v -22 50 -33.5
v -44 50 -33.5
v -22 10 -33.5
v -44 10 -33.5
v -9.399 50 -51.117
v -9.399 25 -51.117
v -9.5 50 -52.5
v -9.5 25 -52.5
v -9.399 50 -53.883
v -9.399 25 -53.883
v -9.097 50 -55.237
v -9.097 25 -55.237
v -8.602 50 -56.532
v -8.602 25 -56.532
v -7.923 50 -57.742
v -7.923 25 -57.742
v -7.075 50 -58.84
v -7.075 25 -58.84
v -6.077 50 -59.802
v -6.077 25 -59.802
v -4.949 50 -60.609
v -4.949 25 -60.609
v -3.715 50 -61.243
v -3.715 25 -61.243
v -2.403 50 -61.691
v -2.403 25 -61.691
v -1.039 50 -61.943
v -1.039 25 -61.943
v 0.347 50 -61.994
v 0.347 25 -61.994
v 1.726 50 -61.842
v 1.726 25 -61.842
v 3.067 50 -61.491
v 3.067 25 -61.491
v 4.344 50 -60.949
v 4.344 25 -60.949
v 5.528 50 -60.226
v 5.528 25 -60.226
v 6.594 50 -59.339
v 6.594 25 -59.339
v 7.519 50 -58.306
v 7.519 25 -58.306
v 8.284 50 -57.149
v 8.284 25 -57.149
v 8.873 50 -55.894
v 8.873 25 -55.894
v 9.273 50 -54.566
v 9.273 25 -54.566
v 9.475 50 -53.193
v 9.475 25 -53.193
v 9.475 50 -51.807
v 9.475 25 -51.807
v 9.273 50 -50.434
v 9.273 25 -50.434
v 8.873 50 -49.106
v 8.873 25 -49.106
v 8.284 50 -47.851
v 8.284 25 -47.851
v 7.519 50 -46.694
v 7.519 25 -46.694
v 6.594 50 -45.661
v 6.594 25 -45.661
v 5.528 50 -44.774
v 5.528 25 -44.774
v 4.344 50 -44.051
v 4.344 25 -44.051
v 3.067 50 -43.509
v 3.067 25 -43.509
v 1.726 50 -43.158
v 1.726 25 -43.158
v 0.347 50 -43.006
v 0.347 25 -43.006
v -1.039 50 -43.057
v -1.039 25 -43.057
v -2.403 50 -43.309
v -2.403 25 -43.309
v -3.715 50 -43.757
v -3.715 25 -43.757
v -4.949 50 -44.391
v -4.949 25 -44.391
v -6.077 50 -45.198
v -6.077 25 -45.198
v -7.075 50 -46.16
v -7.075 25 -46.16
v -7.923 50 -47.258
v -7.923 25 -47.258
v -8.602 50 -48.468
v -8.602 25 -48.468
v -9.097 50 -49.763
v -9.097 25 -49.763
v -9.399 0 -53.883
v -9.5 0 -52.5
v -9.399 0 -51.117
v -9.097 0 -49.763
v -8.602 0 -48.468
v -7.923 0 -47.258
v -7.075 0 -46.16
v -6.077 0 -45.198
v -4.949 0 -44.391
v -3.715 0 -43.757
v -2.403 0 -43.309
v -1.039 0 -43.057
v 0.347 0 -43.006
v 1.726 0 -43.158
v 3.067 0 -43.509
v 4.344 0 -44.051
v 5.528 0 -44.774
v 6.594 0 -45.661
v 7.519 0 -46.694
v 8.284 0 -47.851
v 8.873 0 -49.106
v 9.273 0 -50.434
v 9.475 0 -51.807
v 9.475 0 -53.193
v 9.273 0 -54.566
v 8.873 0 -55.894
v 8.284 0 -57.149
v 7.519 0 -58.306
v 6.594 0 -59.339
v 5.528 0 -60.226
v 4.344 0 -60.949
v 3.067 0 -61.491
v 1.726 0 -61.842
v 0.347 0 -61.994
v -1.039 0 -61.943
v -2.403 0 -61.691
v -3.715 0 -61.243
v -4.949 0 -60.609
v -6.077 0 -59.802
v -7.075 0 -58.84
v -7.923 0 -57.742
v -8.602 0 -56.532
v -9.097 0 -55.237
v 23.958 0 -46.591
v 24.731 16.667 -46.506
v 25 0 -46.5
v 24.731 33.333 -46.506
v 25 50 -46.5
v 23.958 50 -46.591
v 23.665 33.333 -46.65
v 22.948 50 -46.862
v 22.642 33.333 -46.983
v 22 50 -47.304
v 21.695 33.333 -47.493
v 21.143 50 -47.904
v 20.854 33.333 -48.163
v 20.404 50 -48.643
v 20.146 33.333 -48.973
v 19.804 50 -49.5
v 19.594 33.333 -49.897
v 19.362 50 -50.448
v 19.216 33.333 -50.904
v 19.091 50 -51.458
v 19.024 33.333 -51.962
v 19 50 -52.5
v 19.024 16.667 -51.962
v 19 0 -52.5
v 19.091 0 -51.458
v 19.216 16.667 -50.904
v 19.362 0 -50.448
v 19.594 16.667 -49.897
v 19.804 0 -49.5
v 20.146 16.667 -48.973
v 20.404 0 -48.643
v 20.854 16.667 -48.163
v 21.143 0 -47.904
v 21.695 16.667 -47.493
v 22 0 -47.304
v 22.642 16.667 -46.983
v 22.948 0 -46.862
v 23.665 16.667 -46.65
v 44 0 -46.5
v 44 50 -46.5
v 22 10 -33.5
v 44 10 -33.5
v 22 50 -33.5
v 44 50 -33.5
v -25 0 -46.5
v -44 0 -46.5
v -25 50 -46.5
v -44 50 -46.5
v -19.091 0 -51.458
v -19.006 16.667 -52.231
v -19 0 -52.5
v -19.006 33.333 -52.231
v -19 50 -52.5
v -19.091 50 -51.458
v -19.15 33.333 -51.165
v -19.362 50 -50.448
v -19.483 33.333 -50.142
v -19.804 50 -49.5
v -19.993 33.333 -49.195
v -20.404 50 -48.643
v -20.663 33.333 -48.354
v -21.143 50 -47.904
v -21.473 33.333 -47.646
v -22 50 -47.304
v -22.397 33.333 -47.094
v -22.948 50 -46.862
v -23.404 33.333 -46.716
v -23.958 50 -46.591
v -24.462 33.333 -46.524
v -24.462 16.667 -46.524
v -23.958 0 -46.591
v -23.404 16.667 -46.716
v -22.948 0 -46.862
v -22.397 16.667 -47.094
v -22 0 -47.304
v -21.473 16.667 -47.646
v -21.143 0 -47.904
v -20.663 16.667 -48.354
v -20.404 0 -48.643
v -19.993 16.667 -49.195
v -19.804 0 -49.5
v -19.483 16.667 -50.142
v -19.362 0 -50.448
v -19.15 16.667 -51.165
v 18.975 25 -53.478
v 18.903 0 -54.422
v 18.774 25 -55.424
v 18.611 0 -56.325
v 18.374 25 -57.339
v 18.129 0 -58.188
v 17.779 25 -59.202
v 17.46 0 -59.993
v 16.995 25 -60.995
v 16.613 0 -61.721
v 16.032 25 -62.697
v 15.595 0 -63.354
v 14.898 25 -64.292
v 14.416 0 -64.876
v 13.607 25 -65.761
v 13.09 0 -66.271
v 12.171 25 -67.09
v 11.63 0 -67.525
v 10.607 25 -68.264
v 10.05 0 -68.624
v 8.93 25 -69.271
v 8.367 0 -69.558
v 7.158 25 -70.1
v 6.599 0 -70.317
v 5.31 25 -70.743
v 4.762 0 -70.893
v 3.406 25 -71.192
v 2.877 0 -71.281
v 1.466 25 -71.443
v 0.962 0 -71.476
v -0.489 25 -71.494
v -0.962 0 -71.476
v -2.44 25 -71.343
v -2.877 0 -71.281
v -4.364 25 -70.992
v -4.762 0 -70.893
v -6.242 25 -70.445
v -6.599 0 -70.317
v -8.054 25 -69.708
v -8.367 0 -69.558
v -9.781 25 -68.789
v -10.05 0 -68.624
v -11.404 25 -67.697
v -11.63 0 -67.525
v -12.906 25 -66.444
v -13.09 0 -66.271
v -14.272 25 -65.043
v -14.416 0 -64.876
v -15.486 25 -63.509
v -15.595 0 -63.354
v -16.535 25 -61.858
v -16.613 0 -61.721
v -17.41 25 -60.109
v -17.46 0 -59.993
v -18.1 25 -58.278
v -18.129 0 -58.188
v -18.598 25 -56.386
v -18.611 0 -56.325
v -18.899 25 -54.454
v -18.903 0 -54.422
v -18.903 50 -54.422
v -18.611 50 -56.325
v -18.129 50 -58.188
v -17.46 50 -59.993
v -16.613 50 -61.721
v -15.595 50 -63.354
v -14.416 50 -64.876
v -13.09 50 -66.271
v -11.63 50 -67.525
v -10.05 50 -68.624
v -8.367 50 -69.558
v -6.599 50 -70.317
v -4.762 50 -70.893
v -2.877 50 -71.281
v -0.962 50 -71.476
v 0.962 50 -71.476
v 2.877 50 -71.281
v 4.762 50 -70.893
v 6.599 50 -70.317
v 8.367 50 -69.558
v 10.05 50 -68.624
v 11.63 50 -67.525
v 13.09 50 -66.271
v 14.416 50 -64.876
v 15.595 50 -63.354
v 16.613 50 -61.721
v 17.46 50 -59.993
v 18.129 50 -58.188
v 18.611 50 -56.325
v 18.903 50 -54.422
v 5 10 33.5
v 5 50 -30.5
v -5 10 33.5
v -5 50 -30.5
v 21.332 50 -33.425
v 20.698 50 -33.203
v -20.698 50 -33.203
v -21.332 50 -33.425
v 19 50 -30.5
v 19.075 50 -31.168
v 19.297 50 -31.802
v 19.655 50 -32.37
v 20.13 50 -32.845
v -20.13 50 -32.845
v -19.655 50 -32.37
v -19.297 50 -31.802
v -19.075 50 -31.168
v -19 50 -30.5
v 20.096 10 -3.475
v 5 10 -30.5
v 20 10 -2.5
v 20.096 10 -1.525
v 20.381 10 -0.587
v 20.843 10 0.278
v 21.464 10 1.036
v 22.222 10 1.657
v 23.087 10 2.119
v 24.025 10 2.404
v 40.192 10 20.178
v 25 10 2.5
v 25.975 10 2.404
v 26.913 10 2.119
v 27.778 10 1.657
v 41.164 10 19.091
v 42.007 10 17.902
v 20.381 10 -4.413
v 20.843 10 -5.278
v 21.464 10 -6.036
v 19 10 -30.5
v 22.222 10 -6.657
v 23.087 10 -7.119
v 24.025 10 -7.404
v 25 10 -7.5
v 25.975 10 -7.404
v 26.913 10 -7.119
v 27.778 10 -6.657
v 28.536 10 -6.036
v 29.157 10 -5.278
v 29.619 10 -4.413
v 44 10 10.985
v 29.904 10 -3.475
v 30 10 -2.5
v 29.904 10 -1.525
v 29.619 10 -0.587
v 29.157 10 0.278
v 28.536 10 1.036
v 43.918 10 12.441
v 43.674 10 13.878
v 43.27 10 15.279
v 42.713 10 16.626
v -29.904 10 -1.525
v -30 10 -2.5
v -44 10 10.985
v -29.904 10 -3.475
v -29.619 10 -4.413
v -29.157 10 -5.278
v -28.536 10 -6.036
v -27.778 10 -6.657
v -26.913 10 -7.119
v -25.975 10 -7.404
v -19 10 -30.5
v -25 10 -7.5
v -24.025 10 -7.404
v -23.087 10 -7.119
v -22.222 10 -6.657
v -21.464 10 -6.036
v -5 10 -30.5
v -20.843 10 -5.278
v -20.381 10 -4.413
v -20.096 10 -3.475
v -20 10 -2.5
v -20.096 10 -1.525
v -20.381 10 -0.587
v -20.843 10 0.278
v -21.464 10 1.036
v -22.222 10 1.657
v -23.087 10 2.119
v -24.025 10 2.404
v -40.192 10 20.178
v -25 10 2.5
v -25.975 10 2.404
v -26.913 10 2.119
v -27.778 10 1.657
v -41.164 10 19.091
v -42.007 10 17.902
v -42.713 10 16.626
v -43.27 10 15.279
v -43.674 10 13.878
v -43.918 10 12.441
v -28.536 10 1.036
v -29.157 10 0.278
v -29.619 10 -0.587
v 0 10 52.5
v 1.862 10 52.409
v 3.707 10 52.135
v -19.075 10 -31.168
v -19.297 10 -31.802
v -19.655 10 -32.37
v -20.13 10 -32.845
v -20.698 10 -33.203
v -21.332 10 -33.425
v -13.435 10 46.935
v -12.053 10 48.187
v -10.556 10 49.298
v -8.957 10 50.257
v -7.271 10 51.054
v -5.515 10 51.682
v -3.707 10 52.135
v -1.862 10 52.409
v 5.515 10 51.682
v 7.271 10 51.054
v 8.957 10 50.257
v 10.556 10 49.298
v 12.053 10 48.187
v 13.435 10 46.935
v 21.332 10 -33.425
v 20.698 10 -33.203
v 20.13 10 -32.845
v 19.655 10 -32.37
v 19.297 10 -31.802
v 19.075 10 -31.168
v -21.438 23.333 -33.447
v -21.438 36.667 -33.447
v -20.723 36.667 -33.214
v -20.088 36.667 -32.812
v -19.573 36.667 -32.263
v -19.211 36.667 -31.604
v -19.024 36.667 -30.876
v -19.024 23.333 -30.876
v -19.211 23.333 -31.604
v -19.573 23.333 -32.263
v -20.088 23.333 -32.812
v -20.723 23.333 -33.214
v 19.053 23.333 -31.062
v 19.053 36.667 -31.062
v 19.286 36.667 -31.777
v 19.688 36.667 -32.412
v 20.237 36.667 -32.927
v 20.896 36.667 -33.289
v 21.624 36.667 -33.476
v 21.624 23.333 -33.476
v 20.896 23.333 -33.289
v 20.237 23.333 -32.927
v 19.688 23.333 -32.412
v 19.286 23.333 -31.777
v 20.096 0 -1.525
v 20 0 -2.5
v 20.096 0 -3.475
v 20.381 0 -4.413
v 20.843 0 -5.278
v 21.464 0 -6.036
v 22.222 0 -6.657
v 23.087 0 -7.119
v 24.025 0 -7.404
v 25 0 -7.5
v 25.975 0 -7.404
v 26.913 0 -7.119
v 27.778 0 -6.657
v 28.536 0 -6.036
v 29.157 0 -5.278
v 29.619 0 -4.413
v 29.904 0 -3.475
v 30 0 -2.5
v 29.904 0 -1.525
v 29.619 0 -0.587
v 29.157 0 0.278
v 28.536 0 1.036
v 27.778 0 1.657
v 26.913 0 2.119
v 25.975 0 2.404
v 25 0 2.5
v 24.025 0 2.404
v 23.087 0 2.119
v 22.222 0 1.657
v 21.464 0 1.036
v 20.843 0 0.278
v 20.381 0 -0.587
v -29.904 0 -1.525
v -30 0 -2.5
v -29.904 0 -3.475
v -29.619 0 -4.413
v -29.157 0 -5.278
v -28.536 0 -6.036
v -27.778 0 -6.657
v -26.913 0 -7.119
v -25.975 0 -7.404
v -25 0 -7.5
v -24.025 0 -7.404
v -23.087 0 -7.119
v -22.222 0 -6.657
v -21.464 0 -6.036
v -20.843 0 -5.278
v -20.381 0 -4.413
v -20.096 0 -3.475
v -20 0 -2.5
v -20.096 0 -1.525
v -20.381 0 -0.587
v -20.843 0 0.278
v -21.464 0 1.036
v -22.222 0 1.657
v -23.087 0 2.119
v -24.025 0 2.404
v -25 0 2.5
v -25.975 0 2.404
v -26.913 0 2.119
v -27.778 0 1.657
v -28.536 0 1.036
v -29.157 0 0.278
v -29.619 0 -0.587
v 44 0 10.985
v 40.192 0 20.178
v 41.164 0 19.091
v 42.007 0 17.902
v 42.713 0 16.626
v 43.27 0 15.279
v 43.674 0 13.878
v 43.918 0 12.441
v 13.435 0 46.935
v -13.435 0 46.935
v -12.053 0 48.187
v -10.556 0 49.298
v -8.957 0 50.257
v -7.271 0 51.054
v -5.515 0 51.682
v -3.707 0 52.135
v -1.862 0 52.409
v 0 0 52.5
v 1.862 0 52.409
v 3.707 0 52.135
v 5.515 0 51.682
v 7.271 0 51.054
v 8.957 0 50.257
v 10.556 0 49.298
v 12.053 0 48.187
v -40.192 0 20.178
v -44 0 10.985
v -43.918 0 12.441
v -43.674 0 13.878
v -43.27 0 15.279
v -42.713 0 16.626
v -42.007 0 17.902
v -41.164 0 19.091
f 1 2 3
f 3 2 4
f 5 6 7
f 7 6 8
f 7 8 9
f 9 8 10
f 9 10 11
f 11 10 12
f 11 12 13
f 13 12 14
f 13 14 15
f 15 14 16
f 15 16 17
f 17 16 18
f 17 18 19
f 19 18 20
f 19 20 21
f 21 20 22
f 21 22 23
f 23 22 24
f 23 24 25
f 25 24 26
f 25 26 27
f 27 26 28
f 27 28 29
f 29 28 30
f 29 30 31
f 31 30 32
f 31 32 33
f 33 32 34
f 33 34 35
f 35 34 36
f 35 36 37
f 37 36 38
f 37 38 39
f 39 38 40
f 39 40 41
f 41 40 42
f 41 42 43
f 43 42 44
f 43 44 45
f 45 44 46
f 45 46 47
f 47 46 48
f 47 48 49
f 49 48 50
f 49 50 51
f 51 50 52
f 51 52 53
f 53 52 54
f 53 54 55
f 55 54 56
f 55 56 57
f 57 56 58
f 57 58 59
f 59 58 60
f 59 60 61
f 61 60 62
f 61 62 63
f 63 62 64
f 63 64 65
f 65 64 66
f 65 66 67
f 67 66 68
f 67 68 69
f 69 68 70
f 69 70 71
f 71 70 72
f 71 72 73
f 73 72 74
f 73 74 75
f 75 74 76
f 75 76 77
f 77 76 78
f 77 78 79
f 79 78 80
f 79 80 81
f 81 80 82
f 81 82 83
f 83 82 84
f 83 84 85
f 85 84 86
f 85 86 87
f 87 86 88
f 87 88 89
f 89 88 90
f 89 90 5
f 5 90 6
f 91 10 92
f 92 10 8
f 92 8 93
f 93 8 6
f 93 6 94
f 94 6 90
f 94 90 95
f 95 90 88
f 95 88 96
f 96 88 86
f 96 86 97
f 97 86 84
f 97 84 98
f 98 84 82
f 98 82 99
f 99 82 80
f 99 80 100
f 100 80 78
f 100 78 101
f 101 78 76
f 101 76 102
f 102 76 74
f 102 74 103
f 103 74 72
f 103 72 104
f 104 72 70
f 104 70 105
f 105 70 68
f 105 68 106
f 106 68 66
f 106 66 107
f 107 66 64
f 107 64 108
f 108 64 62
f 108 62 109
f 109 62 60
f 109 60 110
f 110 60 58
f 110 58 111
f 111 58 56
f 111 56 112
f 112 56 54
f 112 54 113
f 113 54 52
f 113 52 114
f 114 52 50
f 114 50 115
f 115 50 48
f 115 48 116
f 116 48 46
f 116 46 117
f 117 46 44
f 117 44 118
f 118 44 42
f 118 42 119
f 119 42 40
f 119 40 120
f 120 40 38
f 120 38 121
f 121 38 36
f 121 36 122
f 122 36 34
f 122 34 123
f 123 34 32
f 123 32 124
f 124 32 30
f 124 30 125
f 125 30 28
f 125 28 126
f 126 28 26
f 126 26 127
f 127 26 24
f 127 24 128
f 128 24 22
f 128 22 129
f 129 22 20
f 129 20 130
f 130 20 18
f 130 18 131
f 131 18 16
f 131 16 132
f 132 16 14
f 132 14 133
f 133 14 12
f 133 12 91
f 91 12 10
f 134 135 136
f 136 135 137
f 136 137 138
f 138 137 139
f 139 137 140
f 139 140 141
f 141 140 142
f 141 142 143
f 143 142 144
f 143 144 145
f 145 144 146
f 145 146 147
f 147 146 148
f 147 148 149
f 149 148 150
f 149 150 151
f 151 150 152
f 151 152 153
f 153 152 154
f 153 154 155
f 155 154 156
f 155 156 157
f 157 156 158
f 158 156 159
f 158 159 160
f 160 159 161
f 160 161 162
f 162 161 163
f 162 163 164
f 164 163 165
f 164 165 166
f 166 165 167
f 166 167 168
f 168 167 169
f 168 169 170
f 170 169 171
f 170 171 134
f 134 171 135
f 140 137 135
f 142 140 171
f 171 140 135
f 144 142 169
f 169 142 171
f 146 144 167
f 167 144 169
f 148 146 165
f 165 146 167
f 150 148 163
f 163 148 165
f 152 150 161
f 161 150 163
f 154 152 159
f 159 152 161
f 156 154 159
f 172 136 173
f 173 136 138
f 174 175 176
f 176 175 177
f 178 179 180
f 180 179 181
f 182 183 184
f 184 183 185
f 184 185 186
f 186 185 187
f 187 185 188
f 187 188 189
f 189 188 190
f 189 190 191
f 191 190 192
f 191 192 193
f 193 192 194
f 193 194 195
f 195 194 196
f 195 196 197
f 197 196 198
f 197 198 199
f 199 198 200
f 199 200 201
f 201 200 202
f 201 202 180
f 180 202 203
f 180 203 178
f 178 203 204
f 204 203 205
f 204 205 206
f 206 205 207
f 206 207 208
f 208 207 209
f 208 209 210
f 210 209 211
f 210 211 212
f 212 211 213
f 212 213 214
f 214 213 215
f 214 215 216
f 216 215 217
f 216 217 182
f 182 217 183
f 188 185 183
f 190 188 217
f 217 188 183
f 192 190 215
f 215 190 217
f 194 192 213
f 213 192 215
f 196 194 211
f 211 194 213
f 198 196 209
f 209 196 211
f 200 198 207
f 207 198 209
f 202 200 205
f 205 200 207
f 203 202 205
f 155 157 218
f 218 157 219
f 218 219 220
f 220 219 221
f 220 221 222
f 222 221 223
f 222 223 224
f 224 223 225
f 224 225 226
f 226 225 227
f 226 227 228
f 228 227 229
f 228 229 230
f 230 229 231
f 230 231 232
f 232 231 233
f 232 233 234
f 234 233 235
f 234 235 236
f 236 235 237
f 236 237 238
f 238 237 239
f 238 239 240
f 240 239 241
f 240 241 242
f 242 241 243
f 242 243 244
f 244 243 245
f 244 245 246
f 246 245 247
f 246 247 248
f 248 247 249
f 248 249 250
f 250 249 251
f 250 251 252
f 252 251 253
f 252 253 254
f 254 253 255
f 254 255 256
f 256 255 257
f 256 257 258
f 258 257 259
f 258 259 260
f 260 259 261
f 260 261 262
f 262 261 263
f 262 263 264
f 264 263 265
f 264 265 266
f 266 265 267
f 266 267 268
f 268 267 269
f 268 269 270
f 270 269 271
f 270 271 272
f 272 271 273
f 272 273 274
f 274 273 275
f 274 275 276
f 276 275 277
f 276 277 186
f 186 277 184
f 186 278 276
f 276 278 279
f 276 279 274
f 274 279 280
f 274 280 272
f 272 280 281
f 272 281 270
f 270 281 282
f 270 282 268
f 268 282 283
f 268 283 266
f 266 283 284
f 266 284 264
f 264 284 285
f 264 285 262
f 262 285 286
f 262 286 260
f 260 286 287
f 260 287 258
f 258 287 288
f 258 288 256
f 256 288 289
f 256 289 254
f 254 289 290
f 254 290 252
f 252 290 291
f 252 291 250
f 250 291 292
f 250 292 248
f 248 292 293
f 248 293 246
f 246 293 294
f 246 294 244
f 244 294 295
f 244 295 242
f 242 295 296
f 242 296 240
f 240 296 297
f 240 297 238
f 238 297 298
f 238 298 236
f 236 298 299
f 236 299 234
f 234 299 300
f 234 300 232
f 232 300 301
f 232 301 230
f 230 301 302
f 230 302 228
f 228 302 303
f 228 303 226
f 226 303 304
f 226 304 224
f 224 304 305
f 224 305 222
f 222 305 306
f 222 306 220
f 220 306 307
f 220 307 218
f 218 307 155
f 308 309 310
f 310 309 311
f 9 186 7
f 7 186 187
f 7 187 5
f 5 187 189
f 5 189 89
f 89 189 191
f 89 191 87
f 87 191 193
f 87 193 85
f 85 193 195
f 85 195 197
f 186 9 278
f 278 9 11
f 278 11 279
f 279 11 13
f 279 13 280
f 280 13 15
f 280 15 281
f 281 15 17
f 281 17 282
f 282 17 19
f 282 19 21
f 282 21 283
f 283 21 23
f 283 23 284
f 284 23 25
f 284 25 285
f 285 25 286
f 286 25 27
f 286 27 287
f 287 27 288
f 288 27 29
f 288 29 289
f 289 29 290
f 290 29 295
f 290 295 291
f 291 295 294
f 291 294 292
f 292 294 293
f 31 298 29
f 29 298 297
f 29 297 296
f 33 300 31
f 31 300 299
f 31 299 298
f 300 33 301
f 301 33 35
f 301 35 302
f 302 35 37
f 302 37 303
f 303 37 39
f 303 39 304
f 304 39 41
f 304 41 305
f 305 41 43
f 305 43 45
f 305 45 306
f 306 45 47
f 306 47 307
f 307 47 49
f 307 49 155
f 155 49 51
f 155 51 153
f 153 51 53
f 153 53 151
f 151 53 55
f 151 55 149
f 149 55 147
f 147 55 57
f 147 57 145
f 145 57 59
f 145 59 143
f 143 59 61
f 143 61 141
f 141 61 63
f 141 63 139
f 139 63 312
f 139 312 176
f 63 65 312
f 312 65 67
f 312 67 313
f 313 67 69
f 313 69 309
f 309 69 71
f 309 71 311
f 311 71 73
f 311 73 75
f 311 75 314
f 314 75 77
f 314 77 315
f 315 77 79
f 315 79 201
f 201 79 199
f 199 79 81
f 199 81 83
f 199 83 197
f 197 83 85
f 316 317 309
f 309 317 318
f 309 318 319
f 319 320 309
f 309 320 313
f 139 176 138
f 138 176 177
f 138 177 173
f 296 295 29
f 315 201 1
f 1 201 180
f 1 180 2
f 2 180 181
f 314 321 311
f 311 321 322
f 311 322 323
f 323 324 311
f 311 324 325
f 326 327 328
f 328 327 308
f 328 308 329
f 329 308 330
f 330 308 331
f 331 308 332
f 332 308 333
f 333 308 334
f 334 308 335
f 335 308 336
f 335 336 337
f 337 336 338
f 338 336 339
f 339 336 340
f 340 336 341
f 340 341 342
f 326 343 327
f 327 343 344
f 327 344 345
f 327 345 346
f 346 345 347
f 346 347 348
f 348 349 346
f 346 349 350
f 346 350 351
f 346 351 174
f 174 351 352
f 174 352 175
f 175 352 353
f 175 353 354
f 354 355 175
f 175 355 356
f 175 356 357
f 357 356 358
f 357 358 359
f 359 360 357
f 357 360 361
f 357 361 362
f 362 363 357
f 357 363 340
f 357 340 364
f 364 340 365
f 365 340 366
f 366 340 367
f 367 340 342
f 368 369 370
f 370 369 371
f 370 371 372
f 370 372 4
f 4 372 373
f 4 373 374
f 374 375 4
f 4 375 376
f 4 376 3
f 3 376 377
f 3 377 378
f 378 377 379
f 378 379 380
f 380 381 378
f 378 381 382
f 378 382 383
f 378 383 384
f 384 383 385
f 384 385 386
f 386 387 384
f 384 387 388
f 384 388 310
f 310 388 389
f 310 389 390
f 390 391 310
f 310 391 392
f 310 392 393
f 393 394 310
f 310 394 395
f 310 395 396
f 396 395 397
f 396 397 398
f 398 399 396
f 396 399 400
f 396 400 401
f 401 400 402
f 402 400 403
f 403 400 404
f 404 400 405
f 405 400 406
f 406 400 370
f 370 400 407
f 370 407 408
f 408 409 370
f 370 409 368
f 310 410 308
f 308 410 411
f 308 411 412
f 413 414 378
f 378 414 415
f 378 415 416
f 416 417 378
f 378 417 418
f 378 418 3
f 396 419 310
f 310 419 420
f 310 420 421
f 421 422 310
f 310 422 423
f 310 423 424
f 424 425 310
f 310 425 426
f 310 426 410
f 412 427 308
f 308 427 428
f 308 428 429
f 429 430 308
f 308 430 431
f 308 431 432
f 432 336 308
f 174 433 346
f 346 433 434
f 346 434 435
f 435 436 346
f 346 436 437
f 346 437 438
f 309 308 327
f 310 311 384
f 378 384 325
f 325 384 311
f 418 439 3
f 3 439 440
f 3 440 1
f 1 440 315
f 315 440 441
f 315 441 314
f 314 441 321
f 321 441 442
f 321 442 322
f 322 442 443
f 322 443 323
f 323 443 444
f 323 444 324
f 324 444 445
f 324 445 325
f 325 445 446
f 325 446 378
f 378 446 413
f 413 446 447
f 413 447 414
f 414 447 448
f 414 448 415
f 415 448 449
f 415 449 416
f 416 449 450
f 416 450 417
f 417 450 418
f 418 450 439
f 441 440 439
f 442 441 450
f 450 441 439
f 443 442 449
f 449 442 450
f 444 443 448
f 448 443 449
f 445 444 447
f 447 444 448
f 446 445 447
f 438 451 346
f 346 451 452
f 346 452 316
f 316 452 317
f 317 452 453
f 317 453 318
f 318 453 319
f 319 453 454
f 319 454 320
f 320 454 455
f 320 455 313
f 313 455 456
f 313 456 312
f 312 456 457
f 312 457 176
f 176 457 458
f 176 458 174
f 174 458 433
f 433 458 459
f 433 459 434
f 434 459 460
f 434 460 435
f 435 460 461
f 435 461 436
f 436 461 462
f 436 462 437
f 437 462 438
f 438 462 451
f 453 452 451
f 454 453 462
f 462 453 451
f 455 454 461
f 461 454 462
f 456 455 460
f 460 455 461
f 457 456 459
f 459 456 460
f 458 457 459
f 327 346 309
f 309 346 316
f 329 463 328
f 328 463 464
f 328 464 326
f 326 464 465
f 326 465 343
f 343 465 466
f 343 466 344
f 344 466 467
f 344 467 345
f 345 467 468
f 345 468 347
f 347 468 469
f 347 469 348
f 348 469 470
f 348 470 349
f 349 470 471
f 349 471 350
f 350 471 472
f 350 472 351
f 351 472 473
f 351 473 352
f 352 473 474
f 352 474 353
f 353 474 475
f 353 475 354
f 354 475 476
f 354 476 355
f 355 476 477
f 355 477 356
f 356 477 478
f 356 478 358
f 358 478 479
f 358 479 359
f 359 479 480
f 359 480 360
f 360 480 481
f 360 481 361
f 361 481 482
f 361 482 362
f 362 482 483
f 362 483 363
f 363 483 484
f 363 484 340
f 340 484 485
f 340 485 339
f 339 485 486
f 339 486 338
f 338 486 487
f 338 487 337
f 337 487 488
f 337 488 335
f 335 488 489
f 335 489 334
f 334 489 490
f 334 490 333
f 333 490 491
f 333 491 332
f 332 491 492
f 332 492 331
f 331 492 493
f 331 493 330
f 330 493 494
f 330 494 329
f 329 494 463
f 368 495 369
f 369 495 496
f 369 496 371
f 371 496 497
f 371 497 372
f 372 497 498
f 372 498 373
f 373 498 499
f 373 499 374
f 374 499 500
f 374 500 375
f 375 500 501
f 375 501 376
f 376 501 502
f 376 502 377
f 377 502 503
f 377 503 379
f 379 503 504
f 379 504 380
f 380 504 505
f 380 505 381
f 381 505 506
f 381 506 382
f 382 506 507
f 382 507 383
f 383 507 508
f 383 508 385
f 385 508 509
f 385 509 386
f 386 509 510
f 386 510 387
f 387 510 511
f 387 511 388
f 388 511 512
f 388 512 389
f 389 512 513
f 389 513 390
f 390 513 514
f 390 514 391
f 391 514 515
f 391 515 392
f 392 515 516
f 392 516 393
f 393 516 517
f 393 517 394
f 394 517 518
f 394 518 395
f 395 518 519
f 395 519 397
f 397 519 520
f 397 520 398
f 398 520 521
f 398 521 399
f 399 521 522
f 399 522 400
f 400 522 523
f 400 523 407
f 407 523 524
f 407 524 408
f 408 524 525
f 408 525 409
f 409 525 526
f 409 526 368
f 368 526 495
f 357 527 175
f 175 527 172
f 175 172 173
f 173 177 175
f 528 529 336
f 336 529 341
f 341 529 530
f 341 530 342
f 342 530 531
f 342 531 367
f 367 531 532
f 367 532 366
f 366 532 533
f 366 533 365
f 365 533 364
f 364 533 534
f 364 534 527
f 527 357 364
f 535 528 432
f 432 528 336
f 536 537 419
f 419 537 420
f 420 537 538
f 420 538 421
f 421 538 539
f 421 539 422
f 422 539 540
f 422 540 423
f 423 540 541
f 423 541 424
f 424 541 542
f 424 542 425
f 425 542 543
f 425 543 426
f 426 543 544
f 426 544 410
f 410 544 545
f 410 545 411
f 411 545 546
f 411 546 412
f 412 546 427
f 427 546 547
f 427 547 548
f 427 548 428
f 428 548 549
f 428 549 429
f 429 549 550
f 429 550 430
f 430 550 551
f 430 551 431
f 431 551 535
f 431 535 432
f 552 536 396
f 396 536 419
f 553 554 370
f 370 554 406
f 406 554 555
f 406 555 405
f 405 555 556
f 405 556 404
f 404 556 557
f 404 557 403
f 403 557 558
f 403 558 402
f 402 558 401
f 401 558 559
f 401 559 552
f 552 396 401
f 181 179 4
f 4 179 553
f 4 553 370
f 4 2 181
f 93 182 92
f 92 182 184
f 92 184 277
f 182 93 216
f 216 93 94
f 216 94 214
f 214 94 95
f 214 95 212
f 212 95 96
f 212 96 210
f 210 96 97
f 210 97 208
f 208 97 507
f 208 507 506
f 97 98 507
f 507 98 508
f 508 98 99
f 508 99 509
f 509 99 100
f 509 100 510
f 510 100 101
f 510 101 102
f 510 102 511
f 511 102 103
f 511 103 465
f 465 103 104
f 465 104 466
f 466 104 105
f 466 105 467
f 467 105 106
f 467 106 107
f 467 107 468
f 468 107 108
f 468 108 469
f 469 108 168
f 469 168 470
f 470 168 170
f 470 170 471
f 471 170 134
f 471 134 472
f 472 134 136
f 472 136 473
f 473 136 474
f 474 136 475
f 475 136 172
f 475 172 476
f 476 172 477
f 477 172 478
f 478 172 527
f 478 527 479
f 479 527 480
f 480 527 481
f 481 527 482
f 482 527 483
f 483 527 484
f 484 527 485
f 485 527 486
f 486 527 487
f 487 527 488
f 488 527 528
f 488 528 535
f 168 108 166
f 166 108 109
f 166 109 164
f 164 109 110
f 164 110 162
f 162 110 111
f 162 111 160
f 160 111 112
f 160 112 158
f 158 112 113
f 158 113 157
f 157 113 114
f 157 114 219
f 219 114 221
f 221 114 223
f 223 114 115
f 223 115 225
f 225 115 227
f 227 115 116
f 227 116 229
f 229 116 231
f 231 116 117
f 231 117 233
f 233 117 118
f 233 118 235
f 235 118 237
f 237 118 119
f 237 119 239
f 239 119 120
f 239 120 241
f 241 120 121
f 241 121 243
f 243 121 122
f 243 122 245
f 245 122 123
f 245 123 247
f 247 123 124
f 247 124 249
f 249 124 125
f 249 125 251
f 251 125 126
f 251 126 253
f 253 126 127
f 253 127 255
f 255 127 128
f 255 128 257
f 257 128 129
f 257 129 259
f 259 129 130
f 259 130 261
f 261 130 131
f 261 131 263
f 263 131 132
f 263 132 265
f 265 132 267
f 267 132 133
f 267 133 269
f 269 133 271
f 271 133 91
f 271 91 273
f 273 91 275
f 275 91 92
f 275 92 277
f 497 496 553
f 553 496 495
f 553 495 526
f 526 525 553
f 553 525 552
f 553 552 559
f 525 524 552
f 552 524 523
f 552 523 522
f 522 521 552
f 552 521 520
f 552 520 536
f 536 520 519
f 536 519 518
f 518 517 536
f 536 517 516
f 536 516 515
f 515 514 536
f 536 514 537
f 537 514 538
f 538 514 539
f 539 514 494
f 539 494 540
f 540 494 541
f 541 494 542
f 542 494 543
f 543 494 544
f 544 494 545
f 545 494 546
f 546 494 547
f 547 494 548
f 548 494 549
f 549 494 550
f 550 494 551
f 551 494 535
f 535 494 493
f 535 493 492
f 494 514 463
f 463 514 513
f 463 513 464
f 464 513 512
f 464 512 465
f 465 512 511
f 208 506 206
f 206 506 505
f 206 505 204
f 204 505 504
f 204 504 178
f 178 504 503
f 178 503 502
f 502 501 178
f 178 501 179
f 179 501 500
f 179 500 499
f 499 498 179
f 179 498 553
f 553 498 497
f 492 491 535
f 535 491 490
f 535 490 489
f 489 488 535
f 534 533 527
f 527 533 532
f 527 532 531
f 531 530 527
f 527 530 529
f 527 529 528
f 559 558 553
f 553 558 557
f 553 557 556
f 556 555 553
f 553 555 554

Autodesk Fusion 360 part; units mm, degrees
sketch "Base" plane through (0, 0, 0) normal (0, 1, 0) x (1, 0, 0)
  line L0 (44, 33.5) -> (-44, 33.5)
  line L1 (44, -10.9853) -> (44, 33.5)
  line L2 (44, 33.5) -> (-44, -33.5) construction
  line L3 (-44, 33.5) -> (44, -33.5) construction
  line L4 (-44, 33.5) -> (44, 33.5)
  line L5 (44, 33.5) -> (44, 30.5)
  line L6 (-44, 30.5) -> (-44, 33.5)
  line L7 (-44, 30.5) -> (-40.0597, 30.5)
  line L8 (-44, -10.9853) -> (-44, 30.5)
  line L9 (44, -10.9853) -> (44, 30.5)
  arc A0 (-13.435, -46.935) -> (13.435, -46.935) centre (0, -33.5) ccw
  line L10 (0, -33.5) -> (-13.435, -46.935) construction
  line L11 (0, -33.5) -> (13.435, -46.935) construction
  line L12 (-13.435, -46.935) -> (-40.1924, -20.1777)
  line L13 (13.435, -46.935) -> (40.1924, -20.1777)
  line L14 (-44, 33.5) -> (-44, -10.9853)
  arc A1 (40.1924, -20.1777) -> (44, -10.9853) centre (31, -10.9853) ccw
  arc A2 (-44, -10.9853) -> (-40.1924, -20.1777) centre (-31, -10.9853) ccw
  line L15 (-44, 33.5) -> (44, 33.5)
  line L16 (44, 33.5) -> (44, 2.5)
  line L17 (-44, 2.5) -> (-44, 33.5)
  line L18 (0, 33.5) -> (-25, 33.5)
  line L19 (-25, -33.5) -> (0, -33.5) construction
  line L20 (0, -33.5) -> (25, -33.5) construction
  line L21 (25, 33.5) -> (0, 33.5)
  circle A3 centre (-25, 2.5) radius 5
  circle A4 centre (25, 2.5) radius 5
  line L22 (-44, 33.5) -> (44, 33.5)
  line L23 (44, 33.5) -> (44, 46.5)
  line L24 (-44, 46.5) -> (-44, 33.5)
  line L25 (-44, 46.5) -> (-25, 46.5)
  line L26 (-19, 33.5) -> (-44, 33.5)
  line L27 (-44, 33.5) -> (-44, 46.5)
  line L28 (44, 46.5) -> (25, 46.5)
  line L29 (19, 33.5) -> (44, 33.5)
  line L30 (44, 33.5) -> (44, 46.5)
  line L31 (44, 46.5) -> (44, 52.5) construction
  line L32 (44, 52.5) -> (-44, 52.5) construction
  line L33 (-44, 52.5) -> (-44, 46.5) construction
  circle A5 centre (0, 52.5) radius 9.5
  arc A6 (-25, 46.5) -> (-19, 52.5) centre (-25, 52.5) ccw
  arc A7 (19, 52.5) -> (25, 46.5) centre (25, 52.5) ccw
  arc A8 (19, 52.5) -> (-19, 52.5) centre (0, 52.5) ccw
  line L34 (-44, 46.5) -> (-25, 46.5)
  line L35 (25, 46.5) -> (44, 46.5)
  line L36 (44, 46.5) -> (25, 46.5)
  line L37 (-25, 46.5) -> (-44, 46.5)
  dimension "d1" = 88
  dimension "d2" = 67
  dimension "d3" = 3
  dimension "d6" = 38
  dimension "d10" = 13
  dimension "d11" = 31
  dimension "d12" = 25
  dimension "d13" = 25
  dimension "d14" = 10
  dimension "d15" = 10
  dimension "d38" = 13
  dimension "d43" = 6
  dimension "d44" = 19
  dimension "d45" = 38
  dimension "d46" = 6
  dimension "d47" = 6
extrude "Extrude1" add sketch "Base" along normal blind 10 contours L0 L1 L4 L5 L6 L8 L9 A0 L12 L13 L14 A1 A2 L15 L16 L17 L18 L21 L22 L26 L29
sketch "Base decorations" plane through (0, 10, 0) normal (0, 1, 0) x (-1, 0, 0)
  circle A0 centre (-25, -2.5) radius 5
  circle A1 centre (25, -2.5) radius 5
  line L0 (-44, -33.5) -> (44, -33.5)
  line L1 (44, -33.5) -> (44, 10.9853)
  arc A2 (44, 10.9853) -> (40.1924, 20.1777) centre (31, 10.9853) ccw
  line L2 (40.1924, 20.1777) -> (13.435, 46.935)
  arc A3 (13.435, 46.935) -> (-13.435, 46.935) centre (0, 33.5) ccw
  line L3 (-13.435, 46.935) -> (-40.1924, 20.1777)
  arc A4 (-40.1924, 20.1777) -> (-44, 10.9853) centre (-31, 10.9853) ccw
  line L4 (-44, 10.9853) -> (-44, -33.5)
  line L5 (44, -33.5) -> (-44, -33.5)
  line L6 (-44, -33.5) -> (-44, -30.5)
  line L7 (44, -30.5) -> (44, -33.5)
  line L8 (44, -30.5) -> (19, -30.5)
  line L9 (44, 10.5) -> (44, -30.5)
  line L10 (-44, -30.5) -> (-19, -30.5)
  line L11 (-44, 10.5) -> (-44, -30.5)
  line L12 (19, -30.5) -> (5, -30.5)
  line L13 (5, -30.5) -> (5, 10.5)
  line L14 (-19, -30.5) -> (-5, -30.5)
  line L15 (-5, -30.5) -> (-5, 10.5)
  line L16 (-5, -30.5) -> (-5, -26.5)
  line L17 (-5, -26.5) -> (5, -26.5)
  line L18 (5, -26.5) -> (5, -30.5)
  line L19 (5, -33.5) -> (-5, -33.5)
  line L20 (-5, -30.5) -> (-5, 33.5)
  line L21 (-5, 33.5) -> (5, 33.5)
  line L22 (5, 33.5) -> (5, -30.5)
  line L23 (-44, -30.5) -> (-5, -30.5)
  line L24 (5, -30.5) -> (44, -30.5)
  line L25 (19, -30.5) -> (5, -30.5)
  line L26 (-5, -30.5) -> (-19, -30.5)
  line L27 (44, -33.5) -> (19, -33.5)
  line L28 (19, -30.5) -> (44, -30.5)
  line L29 (44, -30.5) -> (44, -33.5)
  line L30 (-44, -33.5) -> (-19, -33.5)
  line L31 (-19, -30.5) -> (-44, -30.5)
  line L32 (-44, -30.5) -> (-44, -33.5)
  arc A5 (-22, -33.5) -> (-19, -30.5) centre (-22, -30.5) ccw
  arc A6 (19, -30.5) -> (22, -33.5) centre (22, -30.5) ccw
  dimension "d18" = 3
  dimension "d19" = 25
  dimension "d20" = 41
  dimension "d21" = 25
  dimension "d22" = 41
  dimension "d23" = 14
  dimension "d24" = 14
  dimension "d26" = 4
  dimension "d27" = 67
  dimension "d28" = 25
  dimension "d29" = 25
  dimension "d30" = 3
  dimension "d31" = 3
extrude "Extrude4" add sketch "Base decorations" along normal blind 40 contours L0 L5 L12 L13 L14 L15 L16 L17 L18 L19 L20 L22 L23 L24 L25 L26 L27 L30 A5 A6
extrude "Extrude2" add sketch "Base decorations" along normal blind 40 contours L13 L15 L17 L20 L21 L22
sketch "Triangle cut" plane through (5, 0, 0) normal (1, 0, 0) x (0, 0, -1)
  line L0 (-33.5, 10) -> (30.5, 10)
  line L1 (30.5, 50) -> (-33.5, 50)
  line L2 (-33.5, 50) -> (-33.5, 10)
  line L3 (30.5, 50) -> (-33.5, 10)
  line L4 (30.5, 10) -> (30.5, 50)
extrude "Extrude3" cut sketch "Triangle cut" against normal blind 10 contours L1 L2 L3
extrude "Extrude5" add sketch "Base" along normal blind 50 contours L0 L4 L15 L18 L21 L22 L23 L24 L25 L26 L27 L28 L29 L30 A6 A7 A8 L34 L35 L36 L37
